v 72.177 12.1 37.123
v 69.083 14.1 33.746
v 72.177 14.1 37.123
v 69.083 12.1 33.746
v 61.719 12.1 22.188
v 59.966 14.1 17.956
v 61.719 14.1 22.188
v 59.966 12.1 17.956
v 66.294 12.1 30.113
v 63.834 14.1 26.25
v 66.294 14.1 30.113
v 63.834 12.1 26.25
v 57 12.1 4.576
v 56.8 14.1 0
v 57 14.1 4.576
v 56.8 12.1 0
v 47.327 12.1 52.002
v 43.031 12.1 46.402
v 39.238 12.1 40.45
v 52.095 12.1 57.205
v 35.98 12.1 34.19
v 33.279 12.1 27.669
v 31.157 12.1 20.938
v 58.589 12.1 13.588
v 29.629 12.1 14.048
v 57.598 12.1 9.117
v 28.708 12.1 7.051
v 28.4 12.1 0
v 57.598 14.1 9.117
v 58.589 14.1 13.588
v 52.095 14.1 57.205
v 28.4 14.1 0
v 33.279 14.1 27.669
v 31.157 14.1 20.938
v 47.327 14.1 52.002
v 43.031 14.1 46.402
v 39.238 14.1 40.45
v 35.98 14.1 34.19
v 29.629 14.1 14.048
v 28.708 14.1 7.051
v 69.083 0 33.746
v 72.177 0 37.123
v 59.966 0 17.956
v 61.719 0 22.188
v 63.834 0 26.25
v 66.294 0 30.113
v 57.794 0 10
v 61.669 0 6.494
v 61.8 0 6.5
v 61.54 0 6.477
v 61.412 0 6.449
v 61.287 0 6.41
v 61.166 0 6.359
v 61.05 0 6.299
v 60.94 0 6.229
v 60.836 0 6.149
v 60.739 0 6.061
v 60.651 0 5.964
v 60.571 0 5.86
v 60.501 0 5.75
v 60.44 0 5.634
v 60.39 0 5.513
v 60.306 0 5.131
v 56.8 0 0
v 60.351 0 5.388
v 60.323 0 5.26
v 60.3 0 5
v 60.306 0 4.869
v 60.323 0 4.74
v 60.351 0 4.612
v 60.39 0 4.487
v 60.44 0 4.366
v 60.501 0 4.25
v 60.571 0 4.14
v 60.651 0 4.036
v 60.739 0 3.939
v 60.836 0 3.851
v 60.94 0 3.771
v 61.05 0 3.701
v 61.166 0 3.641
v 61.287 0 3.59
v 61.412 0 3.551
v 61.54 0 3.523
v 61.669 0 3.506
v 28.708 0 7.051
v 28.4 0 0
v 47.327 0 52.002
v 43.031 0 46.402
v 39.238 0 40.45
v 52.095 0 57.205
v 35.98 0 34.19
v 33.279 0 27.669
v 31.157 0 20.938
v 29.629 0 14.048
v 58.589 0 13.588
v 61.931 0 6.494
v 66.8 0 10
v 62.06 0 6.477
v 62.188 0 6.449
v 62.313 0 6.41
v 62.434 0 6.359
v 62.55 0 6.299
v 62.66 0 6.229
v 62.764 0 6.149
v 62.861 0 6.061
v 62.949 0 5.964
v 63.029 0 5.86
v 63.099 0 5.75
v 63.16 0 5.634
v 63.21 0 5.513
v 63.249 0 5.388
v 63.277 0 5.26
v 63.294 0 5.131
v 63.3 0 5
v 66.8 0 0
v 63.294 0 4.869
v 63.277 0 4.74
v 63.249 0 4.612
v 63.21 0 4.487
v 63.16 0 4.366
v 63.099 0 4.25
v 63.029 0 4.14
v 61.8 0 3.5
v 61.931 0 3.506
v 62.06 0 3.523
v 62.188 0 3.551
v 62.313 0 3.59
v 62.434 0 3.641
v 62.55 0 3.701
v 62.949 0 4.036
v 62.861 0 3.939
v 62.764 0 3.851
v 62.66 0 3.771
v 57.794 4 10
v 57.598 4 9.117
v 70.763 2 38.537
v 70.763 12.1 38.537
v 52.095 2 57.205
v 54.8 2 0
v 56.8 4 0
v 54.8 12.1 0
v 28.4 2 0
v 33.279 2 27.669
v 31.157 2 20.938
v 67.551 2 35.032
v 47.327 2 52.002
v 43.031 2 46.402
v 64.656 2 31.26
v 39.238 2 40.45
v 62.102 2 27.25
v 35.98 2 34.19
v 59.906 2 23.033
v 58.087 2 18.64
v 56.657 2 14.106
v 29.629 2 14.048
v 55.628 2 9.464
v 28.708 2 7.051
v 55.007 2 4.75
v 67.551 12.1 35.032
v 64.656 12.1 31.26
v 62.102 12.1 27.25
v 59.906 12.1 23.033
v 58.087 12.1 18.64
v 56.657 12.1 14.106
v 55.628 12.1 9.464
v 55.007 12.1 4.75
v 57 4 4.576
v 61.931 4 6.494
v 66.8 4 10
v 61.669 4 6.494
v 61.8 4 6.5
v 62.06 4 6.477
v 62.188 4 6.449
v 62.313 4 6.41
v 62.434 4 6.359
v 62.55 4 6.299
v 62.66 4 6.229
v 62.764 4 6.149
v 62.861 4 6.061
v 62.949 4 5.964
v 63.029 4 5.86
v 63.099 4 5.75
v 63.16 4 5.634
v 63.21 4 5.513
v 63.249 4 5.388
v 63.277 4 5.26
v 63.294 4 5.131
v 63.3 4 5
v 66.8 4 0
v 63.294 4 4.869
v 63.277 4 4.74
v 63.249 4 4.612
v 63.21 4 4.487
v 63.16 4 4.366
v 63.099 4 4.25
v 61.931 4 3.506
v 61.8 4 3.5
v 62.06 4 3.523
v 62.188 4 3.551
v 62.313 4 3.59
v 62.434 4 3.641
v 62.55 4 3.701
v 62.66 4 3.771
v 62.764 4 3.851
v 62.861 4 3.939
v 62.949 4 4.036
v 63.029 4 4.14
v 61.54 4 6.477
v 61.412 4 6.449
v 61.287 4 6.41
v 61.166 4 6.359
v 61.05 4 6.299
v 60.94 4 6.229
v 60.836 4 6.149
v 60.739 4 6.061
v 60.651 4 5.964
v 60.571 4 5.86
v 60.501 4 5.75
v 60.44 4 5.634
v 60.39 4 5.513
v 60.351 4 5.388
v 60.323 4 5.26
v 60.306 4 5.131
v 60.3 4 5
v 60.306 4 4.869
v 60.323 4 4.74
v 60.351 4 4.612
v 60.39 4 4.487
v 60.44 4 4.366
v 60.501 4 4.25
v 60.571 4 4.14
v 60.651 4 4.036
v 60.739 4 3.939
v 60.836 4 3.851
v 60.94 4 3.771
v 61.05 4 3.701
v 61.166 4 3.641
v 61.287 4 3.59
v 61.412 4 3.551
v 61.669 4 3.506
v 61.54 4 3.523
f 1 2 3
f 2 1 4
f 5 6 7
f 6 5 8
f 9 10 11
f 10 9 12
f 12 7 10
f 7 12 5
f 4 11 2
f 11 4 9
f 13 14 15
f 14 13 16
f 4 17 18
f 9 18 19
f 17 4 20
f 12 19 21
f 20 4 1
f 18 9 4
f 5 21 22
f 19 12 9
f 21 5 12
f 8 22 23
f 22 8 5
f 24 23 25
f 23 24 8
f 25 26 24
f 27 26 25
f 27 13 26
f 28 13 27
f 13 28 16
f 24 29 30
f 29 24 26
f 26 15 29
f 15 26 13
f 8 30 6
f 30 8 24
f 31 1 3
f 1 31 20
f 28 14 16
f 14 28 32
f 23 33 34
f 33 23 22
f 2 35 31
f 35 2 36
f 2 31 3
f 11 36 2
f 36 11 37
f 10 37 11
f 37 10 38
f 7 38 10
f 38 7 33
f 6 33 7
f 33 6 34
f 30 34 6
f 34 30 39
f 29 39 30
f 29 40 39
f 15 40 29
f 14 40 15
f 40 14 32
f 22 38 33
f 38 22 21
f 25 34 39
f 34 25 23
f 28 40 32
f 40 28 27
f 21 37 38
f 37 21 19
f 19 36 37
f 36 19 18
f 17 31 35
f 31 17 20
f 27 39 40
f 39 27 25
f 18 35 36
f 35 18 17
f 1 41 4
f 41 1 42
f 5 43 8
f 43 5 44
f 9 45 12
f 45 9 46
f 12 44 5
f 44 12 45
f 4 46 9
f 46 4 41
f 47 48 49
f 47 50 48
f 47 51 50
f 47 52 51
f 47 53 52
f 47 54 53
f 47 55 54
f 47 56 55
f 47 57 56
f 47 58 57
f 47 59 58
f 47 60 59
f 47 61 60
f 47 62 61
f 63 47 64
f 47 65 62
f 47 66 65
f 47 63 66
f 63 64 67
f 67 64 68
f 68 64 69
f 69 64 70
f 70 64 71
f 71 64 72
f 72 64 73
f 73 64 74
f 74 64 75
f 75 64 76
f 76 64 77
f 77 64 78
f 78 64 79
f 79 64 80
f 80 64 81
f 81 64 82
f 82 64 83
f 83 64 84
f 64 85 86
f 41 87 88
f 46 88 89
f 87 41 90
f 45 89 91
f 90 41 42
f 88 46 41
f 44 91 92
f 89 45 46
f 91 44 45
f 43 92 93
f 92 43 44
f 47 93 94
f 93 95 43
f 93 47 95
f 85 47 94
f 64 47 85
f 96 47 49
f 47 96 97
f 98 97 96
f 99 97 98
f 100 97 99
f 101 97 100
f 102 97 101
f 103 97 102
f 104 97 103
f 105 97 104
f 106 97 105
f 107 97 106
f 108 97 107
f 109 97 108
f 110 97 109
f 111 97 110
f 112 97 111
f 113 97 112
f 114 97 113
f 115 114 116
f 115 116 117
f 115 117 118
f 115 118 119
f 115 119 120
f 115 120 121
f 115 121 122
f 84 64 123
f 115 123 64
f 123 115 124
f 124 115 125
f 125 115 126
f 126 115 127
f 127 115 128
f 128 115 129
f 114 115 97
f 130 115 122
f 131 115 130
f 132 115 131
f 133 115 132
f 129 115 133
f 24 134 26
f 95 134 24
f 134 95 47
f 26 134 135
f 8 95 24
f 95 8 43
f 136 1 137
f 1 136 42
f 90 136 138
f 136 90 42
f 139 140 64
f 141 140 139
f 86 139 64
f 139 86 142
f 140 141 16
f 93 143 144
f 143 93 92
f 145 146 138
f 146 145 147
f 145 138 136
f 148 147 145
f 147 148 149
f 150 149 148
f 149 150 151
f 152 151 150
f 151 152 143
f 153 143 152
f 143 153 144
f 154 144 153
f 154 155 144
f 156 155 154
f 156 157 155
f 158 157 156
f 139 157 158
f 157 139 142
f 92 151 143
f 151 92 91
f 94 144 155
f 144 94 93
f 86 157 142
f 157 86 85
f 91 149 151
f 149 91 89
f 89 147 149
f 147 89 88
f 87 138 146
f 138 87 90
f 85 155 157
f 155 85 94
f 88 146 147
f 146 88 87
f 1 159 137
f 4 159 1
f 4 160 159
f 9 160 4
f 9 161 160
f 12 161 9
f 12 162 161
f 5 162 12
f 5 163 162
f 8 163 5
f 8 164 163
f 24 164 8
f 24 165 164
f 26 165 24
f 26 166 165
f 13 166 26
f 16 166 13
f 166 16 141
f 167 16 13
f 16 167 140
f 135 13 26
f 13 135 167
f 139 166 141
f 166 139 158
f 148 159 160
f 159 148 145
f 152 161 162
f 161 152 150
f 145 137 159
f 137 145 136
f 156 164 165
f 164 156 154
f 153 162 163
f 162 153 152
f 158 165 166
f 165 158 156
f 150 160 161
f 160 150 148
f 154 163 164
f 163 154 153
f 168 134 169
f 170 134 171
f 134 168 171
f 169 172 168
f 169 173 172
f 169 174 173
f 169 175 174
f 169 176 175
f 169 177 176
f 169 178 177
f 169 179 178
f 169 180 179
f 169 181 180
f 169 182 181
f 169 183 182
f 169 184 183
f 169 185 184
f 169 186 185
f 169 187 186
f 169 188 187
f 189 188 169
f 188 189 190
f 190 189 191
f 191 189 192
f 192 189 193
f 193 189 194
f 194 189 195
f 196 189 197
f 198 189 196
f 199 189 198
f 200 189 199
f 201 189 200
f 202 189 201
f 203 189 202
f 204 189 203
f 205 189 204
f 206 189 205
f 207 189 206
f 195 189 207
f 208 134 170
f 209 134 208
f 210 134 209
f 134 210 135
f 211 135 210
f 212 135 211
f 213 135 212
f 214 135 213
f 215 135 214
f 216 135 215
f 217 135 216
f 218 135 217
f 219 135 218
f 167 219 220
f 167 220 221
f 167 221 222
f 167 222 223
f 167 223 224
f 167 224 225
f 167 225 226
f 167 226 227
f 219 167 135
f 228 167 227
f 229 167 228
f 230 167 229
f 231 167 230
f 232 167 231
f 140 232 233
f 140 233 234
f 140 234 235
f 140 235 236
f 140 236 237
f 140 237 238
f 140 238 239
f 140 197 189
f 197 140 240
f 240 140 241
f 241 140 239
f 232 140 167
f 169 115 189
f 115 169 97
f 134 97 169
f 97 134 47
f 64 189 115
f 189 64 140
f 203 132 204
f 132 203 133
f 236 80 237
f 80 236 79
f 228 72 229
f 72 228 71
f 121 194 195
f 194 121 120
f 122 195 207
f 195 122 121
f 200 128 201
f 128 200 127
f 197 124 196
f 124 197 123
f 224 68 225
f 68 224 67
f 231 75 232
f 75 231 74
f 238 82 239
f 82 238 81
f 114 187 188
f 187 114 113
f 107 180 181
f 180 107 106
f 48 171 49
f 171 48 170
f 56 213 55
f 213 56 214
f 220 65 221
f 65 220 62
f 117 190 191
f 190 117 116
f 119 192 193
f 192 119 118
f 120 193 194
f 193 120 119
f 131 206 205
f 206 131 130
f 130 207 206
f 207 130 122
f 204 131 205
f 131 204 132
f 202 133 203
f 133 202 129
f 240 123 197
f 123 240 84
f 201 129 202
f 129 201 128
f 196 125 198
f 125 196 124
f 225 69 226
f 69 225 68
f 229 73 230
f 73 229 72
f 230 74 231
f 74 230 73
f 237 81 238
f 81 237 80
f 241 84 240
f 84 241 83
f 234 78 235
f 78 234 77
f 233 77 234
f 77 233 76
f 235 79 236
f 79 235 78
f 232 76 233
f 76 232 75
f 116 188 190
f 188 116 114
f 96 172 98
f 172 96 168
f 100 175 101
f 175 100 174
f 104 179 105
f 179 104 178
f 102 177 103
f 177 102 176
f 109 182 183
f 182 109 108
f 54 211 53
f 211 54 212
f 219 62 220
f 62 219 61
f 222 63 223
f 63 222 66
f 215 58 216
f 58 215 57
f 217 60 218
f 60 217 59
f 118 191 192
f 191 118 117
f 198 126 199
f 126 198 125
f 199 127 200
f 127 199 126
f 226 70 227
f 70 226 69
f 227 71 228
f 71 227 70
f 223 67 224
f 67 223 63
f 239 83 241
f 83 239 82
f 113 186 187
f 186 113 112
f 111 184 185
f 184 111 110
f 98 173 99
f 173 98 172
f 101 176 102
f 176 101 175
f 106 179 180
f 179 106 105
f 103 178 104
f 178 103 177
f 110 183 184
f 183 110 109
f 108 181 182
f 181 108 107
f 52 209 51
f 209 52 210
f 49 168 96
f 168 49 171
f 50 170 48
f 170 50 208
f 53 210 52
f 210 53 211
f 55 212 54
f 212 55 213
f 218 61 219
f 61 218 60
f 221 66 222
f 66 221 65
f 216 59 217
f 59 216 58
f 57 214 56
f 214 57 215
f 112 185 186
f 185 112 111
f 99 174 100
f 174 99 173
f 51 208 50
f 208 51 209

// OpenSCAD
//General
$fn = 72;
tolerance = 0.5;
wall = 2;

rotate([-90,0,0])
clip();

module clip() {
  h_bar = wall*2 + 6.1;
  l_bar = 26.4 + wall*2; // length of metal + extra space after and before
  depth_bar = 5;

  r_holder = 105/2; // dimensions of bag holder
  r_holder_outter = r_holder+28.4;
  h_holder = wall;

  // this is the side bar clip
  // color("blue")
  // difference(){
  //   cube([l_bar, depth_bar, h_bar+wall*2]); // outter clip
  //   translate([-wall,0,wall-tolerance/2])
  //   cube([l_bar, depth_bar, h_bar+tolerance]); // spacing of metal bar
  // }
  // this is the extension of the side clip into the circular clip
  // translate([l_bar,0,0])
  // cube([28.4, depth_bar, h_bar+wall*2]);
  
  // Below is the clip for the circular garbage bag holder
  // top plate
  color("blue")
  translate([r_holder_outter+l_bar-wall,0,h_bar+wall])
  garbageHolder();
  // bottom plate
  translate([r_holder_outter+l_bar-wall,0,0])
  garbageHolder();
  // middle portion
  translate([r_holder_outter+l_bar-wall,0,wall])
  difference(){
    cylinder(r=r_holder+wall, h=h_bar);
    killOutsideQuarters();
    color("red")
    cylinder(r=r_holder, h=h_bar);
  }

  l_clip_holster = 10;
  w_clip_holster = l_clip_holster;
  h_clip_holster = wall*2;
  // screw holster
  translate([r_holder_outter+l_bar-wall-r_holder,-l_clip_holster,0]){
    difference(){
      cube([l_clip_holster,w_clip_holster,h_clip_holster]);
      translate([l_clip_holster/2,l_clip_holster/2])
      cylinder(r=1.5,h=h_clip_holster); // m3 slot
    }
  }

  module garbageHolder(){
    difference(){
      union(){
        cylinder(r=r_holder_outter, h=h_holder);
      }
      killOutsideQuarters();
    }
  }

  module killOutsideQuarters() {
    // Below cubes to kill off 3 quarters of the circle
    cylinder(r=r_holder, h=h_bar);
    color("purple")
    rotate([0,0,-45])
    translate([0,-r_holder_outter,0])
    cube([r_holder_outter*2,r_holder_outter*2,h_bar+wall*2]);
    translate([-r_holder_outter,0,0])
    cube([r_holder_outter*2,r_holder_outter*2,h_bar+wall*2]);
    color("red")
    cylinder(r=r_holder, h=h_holder);
  }
}
